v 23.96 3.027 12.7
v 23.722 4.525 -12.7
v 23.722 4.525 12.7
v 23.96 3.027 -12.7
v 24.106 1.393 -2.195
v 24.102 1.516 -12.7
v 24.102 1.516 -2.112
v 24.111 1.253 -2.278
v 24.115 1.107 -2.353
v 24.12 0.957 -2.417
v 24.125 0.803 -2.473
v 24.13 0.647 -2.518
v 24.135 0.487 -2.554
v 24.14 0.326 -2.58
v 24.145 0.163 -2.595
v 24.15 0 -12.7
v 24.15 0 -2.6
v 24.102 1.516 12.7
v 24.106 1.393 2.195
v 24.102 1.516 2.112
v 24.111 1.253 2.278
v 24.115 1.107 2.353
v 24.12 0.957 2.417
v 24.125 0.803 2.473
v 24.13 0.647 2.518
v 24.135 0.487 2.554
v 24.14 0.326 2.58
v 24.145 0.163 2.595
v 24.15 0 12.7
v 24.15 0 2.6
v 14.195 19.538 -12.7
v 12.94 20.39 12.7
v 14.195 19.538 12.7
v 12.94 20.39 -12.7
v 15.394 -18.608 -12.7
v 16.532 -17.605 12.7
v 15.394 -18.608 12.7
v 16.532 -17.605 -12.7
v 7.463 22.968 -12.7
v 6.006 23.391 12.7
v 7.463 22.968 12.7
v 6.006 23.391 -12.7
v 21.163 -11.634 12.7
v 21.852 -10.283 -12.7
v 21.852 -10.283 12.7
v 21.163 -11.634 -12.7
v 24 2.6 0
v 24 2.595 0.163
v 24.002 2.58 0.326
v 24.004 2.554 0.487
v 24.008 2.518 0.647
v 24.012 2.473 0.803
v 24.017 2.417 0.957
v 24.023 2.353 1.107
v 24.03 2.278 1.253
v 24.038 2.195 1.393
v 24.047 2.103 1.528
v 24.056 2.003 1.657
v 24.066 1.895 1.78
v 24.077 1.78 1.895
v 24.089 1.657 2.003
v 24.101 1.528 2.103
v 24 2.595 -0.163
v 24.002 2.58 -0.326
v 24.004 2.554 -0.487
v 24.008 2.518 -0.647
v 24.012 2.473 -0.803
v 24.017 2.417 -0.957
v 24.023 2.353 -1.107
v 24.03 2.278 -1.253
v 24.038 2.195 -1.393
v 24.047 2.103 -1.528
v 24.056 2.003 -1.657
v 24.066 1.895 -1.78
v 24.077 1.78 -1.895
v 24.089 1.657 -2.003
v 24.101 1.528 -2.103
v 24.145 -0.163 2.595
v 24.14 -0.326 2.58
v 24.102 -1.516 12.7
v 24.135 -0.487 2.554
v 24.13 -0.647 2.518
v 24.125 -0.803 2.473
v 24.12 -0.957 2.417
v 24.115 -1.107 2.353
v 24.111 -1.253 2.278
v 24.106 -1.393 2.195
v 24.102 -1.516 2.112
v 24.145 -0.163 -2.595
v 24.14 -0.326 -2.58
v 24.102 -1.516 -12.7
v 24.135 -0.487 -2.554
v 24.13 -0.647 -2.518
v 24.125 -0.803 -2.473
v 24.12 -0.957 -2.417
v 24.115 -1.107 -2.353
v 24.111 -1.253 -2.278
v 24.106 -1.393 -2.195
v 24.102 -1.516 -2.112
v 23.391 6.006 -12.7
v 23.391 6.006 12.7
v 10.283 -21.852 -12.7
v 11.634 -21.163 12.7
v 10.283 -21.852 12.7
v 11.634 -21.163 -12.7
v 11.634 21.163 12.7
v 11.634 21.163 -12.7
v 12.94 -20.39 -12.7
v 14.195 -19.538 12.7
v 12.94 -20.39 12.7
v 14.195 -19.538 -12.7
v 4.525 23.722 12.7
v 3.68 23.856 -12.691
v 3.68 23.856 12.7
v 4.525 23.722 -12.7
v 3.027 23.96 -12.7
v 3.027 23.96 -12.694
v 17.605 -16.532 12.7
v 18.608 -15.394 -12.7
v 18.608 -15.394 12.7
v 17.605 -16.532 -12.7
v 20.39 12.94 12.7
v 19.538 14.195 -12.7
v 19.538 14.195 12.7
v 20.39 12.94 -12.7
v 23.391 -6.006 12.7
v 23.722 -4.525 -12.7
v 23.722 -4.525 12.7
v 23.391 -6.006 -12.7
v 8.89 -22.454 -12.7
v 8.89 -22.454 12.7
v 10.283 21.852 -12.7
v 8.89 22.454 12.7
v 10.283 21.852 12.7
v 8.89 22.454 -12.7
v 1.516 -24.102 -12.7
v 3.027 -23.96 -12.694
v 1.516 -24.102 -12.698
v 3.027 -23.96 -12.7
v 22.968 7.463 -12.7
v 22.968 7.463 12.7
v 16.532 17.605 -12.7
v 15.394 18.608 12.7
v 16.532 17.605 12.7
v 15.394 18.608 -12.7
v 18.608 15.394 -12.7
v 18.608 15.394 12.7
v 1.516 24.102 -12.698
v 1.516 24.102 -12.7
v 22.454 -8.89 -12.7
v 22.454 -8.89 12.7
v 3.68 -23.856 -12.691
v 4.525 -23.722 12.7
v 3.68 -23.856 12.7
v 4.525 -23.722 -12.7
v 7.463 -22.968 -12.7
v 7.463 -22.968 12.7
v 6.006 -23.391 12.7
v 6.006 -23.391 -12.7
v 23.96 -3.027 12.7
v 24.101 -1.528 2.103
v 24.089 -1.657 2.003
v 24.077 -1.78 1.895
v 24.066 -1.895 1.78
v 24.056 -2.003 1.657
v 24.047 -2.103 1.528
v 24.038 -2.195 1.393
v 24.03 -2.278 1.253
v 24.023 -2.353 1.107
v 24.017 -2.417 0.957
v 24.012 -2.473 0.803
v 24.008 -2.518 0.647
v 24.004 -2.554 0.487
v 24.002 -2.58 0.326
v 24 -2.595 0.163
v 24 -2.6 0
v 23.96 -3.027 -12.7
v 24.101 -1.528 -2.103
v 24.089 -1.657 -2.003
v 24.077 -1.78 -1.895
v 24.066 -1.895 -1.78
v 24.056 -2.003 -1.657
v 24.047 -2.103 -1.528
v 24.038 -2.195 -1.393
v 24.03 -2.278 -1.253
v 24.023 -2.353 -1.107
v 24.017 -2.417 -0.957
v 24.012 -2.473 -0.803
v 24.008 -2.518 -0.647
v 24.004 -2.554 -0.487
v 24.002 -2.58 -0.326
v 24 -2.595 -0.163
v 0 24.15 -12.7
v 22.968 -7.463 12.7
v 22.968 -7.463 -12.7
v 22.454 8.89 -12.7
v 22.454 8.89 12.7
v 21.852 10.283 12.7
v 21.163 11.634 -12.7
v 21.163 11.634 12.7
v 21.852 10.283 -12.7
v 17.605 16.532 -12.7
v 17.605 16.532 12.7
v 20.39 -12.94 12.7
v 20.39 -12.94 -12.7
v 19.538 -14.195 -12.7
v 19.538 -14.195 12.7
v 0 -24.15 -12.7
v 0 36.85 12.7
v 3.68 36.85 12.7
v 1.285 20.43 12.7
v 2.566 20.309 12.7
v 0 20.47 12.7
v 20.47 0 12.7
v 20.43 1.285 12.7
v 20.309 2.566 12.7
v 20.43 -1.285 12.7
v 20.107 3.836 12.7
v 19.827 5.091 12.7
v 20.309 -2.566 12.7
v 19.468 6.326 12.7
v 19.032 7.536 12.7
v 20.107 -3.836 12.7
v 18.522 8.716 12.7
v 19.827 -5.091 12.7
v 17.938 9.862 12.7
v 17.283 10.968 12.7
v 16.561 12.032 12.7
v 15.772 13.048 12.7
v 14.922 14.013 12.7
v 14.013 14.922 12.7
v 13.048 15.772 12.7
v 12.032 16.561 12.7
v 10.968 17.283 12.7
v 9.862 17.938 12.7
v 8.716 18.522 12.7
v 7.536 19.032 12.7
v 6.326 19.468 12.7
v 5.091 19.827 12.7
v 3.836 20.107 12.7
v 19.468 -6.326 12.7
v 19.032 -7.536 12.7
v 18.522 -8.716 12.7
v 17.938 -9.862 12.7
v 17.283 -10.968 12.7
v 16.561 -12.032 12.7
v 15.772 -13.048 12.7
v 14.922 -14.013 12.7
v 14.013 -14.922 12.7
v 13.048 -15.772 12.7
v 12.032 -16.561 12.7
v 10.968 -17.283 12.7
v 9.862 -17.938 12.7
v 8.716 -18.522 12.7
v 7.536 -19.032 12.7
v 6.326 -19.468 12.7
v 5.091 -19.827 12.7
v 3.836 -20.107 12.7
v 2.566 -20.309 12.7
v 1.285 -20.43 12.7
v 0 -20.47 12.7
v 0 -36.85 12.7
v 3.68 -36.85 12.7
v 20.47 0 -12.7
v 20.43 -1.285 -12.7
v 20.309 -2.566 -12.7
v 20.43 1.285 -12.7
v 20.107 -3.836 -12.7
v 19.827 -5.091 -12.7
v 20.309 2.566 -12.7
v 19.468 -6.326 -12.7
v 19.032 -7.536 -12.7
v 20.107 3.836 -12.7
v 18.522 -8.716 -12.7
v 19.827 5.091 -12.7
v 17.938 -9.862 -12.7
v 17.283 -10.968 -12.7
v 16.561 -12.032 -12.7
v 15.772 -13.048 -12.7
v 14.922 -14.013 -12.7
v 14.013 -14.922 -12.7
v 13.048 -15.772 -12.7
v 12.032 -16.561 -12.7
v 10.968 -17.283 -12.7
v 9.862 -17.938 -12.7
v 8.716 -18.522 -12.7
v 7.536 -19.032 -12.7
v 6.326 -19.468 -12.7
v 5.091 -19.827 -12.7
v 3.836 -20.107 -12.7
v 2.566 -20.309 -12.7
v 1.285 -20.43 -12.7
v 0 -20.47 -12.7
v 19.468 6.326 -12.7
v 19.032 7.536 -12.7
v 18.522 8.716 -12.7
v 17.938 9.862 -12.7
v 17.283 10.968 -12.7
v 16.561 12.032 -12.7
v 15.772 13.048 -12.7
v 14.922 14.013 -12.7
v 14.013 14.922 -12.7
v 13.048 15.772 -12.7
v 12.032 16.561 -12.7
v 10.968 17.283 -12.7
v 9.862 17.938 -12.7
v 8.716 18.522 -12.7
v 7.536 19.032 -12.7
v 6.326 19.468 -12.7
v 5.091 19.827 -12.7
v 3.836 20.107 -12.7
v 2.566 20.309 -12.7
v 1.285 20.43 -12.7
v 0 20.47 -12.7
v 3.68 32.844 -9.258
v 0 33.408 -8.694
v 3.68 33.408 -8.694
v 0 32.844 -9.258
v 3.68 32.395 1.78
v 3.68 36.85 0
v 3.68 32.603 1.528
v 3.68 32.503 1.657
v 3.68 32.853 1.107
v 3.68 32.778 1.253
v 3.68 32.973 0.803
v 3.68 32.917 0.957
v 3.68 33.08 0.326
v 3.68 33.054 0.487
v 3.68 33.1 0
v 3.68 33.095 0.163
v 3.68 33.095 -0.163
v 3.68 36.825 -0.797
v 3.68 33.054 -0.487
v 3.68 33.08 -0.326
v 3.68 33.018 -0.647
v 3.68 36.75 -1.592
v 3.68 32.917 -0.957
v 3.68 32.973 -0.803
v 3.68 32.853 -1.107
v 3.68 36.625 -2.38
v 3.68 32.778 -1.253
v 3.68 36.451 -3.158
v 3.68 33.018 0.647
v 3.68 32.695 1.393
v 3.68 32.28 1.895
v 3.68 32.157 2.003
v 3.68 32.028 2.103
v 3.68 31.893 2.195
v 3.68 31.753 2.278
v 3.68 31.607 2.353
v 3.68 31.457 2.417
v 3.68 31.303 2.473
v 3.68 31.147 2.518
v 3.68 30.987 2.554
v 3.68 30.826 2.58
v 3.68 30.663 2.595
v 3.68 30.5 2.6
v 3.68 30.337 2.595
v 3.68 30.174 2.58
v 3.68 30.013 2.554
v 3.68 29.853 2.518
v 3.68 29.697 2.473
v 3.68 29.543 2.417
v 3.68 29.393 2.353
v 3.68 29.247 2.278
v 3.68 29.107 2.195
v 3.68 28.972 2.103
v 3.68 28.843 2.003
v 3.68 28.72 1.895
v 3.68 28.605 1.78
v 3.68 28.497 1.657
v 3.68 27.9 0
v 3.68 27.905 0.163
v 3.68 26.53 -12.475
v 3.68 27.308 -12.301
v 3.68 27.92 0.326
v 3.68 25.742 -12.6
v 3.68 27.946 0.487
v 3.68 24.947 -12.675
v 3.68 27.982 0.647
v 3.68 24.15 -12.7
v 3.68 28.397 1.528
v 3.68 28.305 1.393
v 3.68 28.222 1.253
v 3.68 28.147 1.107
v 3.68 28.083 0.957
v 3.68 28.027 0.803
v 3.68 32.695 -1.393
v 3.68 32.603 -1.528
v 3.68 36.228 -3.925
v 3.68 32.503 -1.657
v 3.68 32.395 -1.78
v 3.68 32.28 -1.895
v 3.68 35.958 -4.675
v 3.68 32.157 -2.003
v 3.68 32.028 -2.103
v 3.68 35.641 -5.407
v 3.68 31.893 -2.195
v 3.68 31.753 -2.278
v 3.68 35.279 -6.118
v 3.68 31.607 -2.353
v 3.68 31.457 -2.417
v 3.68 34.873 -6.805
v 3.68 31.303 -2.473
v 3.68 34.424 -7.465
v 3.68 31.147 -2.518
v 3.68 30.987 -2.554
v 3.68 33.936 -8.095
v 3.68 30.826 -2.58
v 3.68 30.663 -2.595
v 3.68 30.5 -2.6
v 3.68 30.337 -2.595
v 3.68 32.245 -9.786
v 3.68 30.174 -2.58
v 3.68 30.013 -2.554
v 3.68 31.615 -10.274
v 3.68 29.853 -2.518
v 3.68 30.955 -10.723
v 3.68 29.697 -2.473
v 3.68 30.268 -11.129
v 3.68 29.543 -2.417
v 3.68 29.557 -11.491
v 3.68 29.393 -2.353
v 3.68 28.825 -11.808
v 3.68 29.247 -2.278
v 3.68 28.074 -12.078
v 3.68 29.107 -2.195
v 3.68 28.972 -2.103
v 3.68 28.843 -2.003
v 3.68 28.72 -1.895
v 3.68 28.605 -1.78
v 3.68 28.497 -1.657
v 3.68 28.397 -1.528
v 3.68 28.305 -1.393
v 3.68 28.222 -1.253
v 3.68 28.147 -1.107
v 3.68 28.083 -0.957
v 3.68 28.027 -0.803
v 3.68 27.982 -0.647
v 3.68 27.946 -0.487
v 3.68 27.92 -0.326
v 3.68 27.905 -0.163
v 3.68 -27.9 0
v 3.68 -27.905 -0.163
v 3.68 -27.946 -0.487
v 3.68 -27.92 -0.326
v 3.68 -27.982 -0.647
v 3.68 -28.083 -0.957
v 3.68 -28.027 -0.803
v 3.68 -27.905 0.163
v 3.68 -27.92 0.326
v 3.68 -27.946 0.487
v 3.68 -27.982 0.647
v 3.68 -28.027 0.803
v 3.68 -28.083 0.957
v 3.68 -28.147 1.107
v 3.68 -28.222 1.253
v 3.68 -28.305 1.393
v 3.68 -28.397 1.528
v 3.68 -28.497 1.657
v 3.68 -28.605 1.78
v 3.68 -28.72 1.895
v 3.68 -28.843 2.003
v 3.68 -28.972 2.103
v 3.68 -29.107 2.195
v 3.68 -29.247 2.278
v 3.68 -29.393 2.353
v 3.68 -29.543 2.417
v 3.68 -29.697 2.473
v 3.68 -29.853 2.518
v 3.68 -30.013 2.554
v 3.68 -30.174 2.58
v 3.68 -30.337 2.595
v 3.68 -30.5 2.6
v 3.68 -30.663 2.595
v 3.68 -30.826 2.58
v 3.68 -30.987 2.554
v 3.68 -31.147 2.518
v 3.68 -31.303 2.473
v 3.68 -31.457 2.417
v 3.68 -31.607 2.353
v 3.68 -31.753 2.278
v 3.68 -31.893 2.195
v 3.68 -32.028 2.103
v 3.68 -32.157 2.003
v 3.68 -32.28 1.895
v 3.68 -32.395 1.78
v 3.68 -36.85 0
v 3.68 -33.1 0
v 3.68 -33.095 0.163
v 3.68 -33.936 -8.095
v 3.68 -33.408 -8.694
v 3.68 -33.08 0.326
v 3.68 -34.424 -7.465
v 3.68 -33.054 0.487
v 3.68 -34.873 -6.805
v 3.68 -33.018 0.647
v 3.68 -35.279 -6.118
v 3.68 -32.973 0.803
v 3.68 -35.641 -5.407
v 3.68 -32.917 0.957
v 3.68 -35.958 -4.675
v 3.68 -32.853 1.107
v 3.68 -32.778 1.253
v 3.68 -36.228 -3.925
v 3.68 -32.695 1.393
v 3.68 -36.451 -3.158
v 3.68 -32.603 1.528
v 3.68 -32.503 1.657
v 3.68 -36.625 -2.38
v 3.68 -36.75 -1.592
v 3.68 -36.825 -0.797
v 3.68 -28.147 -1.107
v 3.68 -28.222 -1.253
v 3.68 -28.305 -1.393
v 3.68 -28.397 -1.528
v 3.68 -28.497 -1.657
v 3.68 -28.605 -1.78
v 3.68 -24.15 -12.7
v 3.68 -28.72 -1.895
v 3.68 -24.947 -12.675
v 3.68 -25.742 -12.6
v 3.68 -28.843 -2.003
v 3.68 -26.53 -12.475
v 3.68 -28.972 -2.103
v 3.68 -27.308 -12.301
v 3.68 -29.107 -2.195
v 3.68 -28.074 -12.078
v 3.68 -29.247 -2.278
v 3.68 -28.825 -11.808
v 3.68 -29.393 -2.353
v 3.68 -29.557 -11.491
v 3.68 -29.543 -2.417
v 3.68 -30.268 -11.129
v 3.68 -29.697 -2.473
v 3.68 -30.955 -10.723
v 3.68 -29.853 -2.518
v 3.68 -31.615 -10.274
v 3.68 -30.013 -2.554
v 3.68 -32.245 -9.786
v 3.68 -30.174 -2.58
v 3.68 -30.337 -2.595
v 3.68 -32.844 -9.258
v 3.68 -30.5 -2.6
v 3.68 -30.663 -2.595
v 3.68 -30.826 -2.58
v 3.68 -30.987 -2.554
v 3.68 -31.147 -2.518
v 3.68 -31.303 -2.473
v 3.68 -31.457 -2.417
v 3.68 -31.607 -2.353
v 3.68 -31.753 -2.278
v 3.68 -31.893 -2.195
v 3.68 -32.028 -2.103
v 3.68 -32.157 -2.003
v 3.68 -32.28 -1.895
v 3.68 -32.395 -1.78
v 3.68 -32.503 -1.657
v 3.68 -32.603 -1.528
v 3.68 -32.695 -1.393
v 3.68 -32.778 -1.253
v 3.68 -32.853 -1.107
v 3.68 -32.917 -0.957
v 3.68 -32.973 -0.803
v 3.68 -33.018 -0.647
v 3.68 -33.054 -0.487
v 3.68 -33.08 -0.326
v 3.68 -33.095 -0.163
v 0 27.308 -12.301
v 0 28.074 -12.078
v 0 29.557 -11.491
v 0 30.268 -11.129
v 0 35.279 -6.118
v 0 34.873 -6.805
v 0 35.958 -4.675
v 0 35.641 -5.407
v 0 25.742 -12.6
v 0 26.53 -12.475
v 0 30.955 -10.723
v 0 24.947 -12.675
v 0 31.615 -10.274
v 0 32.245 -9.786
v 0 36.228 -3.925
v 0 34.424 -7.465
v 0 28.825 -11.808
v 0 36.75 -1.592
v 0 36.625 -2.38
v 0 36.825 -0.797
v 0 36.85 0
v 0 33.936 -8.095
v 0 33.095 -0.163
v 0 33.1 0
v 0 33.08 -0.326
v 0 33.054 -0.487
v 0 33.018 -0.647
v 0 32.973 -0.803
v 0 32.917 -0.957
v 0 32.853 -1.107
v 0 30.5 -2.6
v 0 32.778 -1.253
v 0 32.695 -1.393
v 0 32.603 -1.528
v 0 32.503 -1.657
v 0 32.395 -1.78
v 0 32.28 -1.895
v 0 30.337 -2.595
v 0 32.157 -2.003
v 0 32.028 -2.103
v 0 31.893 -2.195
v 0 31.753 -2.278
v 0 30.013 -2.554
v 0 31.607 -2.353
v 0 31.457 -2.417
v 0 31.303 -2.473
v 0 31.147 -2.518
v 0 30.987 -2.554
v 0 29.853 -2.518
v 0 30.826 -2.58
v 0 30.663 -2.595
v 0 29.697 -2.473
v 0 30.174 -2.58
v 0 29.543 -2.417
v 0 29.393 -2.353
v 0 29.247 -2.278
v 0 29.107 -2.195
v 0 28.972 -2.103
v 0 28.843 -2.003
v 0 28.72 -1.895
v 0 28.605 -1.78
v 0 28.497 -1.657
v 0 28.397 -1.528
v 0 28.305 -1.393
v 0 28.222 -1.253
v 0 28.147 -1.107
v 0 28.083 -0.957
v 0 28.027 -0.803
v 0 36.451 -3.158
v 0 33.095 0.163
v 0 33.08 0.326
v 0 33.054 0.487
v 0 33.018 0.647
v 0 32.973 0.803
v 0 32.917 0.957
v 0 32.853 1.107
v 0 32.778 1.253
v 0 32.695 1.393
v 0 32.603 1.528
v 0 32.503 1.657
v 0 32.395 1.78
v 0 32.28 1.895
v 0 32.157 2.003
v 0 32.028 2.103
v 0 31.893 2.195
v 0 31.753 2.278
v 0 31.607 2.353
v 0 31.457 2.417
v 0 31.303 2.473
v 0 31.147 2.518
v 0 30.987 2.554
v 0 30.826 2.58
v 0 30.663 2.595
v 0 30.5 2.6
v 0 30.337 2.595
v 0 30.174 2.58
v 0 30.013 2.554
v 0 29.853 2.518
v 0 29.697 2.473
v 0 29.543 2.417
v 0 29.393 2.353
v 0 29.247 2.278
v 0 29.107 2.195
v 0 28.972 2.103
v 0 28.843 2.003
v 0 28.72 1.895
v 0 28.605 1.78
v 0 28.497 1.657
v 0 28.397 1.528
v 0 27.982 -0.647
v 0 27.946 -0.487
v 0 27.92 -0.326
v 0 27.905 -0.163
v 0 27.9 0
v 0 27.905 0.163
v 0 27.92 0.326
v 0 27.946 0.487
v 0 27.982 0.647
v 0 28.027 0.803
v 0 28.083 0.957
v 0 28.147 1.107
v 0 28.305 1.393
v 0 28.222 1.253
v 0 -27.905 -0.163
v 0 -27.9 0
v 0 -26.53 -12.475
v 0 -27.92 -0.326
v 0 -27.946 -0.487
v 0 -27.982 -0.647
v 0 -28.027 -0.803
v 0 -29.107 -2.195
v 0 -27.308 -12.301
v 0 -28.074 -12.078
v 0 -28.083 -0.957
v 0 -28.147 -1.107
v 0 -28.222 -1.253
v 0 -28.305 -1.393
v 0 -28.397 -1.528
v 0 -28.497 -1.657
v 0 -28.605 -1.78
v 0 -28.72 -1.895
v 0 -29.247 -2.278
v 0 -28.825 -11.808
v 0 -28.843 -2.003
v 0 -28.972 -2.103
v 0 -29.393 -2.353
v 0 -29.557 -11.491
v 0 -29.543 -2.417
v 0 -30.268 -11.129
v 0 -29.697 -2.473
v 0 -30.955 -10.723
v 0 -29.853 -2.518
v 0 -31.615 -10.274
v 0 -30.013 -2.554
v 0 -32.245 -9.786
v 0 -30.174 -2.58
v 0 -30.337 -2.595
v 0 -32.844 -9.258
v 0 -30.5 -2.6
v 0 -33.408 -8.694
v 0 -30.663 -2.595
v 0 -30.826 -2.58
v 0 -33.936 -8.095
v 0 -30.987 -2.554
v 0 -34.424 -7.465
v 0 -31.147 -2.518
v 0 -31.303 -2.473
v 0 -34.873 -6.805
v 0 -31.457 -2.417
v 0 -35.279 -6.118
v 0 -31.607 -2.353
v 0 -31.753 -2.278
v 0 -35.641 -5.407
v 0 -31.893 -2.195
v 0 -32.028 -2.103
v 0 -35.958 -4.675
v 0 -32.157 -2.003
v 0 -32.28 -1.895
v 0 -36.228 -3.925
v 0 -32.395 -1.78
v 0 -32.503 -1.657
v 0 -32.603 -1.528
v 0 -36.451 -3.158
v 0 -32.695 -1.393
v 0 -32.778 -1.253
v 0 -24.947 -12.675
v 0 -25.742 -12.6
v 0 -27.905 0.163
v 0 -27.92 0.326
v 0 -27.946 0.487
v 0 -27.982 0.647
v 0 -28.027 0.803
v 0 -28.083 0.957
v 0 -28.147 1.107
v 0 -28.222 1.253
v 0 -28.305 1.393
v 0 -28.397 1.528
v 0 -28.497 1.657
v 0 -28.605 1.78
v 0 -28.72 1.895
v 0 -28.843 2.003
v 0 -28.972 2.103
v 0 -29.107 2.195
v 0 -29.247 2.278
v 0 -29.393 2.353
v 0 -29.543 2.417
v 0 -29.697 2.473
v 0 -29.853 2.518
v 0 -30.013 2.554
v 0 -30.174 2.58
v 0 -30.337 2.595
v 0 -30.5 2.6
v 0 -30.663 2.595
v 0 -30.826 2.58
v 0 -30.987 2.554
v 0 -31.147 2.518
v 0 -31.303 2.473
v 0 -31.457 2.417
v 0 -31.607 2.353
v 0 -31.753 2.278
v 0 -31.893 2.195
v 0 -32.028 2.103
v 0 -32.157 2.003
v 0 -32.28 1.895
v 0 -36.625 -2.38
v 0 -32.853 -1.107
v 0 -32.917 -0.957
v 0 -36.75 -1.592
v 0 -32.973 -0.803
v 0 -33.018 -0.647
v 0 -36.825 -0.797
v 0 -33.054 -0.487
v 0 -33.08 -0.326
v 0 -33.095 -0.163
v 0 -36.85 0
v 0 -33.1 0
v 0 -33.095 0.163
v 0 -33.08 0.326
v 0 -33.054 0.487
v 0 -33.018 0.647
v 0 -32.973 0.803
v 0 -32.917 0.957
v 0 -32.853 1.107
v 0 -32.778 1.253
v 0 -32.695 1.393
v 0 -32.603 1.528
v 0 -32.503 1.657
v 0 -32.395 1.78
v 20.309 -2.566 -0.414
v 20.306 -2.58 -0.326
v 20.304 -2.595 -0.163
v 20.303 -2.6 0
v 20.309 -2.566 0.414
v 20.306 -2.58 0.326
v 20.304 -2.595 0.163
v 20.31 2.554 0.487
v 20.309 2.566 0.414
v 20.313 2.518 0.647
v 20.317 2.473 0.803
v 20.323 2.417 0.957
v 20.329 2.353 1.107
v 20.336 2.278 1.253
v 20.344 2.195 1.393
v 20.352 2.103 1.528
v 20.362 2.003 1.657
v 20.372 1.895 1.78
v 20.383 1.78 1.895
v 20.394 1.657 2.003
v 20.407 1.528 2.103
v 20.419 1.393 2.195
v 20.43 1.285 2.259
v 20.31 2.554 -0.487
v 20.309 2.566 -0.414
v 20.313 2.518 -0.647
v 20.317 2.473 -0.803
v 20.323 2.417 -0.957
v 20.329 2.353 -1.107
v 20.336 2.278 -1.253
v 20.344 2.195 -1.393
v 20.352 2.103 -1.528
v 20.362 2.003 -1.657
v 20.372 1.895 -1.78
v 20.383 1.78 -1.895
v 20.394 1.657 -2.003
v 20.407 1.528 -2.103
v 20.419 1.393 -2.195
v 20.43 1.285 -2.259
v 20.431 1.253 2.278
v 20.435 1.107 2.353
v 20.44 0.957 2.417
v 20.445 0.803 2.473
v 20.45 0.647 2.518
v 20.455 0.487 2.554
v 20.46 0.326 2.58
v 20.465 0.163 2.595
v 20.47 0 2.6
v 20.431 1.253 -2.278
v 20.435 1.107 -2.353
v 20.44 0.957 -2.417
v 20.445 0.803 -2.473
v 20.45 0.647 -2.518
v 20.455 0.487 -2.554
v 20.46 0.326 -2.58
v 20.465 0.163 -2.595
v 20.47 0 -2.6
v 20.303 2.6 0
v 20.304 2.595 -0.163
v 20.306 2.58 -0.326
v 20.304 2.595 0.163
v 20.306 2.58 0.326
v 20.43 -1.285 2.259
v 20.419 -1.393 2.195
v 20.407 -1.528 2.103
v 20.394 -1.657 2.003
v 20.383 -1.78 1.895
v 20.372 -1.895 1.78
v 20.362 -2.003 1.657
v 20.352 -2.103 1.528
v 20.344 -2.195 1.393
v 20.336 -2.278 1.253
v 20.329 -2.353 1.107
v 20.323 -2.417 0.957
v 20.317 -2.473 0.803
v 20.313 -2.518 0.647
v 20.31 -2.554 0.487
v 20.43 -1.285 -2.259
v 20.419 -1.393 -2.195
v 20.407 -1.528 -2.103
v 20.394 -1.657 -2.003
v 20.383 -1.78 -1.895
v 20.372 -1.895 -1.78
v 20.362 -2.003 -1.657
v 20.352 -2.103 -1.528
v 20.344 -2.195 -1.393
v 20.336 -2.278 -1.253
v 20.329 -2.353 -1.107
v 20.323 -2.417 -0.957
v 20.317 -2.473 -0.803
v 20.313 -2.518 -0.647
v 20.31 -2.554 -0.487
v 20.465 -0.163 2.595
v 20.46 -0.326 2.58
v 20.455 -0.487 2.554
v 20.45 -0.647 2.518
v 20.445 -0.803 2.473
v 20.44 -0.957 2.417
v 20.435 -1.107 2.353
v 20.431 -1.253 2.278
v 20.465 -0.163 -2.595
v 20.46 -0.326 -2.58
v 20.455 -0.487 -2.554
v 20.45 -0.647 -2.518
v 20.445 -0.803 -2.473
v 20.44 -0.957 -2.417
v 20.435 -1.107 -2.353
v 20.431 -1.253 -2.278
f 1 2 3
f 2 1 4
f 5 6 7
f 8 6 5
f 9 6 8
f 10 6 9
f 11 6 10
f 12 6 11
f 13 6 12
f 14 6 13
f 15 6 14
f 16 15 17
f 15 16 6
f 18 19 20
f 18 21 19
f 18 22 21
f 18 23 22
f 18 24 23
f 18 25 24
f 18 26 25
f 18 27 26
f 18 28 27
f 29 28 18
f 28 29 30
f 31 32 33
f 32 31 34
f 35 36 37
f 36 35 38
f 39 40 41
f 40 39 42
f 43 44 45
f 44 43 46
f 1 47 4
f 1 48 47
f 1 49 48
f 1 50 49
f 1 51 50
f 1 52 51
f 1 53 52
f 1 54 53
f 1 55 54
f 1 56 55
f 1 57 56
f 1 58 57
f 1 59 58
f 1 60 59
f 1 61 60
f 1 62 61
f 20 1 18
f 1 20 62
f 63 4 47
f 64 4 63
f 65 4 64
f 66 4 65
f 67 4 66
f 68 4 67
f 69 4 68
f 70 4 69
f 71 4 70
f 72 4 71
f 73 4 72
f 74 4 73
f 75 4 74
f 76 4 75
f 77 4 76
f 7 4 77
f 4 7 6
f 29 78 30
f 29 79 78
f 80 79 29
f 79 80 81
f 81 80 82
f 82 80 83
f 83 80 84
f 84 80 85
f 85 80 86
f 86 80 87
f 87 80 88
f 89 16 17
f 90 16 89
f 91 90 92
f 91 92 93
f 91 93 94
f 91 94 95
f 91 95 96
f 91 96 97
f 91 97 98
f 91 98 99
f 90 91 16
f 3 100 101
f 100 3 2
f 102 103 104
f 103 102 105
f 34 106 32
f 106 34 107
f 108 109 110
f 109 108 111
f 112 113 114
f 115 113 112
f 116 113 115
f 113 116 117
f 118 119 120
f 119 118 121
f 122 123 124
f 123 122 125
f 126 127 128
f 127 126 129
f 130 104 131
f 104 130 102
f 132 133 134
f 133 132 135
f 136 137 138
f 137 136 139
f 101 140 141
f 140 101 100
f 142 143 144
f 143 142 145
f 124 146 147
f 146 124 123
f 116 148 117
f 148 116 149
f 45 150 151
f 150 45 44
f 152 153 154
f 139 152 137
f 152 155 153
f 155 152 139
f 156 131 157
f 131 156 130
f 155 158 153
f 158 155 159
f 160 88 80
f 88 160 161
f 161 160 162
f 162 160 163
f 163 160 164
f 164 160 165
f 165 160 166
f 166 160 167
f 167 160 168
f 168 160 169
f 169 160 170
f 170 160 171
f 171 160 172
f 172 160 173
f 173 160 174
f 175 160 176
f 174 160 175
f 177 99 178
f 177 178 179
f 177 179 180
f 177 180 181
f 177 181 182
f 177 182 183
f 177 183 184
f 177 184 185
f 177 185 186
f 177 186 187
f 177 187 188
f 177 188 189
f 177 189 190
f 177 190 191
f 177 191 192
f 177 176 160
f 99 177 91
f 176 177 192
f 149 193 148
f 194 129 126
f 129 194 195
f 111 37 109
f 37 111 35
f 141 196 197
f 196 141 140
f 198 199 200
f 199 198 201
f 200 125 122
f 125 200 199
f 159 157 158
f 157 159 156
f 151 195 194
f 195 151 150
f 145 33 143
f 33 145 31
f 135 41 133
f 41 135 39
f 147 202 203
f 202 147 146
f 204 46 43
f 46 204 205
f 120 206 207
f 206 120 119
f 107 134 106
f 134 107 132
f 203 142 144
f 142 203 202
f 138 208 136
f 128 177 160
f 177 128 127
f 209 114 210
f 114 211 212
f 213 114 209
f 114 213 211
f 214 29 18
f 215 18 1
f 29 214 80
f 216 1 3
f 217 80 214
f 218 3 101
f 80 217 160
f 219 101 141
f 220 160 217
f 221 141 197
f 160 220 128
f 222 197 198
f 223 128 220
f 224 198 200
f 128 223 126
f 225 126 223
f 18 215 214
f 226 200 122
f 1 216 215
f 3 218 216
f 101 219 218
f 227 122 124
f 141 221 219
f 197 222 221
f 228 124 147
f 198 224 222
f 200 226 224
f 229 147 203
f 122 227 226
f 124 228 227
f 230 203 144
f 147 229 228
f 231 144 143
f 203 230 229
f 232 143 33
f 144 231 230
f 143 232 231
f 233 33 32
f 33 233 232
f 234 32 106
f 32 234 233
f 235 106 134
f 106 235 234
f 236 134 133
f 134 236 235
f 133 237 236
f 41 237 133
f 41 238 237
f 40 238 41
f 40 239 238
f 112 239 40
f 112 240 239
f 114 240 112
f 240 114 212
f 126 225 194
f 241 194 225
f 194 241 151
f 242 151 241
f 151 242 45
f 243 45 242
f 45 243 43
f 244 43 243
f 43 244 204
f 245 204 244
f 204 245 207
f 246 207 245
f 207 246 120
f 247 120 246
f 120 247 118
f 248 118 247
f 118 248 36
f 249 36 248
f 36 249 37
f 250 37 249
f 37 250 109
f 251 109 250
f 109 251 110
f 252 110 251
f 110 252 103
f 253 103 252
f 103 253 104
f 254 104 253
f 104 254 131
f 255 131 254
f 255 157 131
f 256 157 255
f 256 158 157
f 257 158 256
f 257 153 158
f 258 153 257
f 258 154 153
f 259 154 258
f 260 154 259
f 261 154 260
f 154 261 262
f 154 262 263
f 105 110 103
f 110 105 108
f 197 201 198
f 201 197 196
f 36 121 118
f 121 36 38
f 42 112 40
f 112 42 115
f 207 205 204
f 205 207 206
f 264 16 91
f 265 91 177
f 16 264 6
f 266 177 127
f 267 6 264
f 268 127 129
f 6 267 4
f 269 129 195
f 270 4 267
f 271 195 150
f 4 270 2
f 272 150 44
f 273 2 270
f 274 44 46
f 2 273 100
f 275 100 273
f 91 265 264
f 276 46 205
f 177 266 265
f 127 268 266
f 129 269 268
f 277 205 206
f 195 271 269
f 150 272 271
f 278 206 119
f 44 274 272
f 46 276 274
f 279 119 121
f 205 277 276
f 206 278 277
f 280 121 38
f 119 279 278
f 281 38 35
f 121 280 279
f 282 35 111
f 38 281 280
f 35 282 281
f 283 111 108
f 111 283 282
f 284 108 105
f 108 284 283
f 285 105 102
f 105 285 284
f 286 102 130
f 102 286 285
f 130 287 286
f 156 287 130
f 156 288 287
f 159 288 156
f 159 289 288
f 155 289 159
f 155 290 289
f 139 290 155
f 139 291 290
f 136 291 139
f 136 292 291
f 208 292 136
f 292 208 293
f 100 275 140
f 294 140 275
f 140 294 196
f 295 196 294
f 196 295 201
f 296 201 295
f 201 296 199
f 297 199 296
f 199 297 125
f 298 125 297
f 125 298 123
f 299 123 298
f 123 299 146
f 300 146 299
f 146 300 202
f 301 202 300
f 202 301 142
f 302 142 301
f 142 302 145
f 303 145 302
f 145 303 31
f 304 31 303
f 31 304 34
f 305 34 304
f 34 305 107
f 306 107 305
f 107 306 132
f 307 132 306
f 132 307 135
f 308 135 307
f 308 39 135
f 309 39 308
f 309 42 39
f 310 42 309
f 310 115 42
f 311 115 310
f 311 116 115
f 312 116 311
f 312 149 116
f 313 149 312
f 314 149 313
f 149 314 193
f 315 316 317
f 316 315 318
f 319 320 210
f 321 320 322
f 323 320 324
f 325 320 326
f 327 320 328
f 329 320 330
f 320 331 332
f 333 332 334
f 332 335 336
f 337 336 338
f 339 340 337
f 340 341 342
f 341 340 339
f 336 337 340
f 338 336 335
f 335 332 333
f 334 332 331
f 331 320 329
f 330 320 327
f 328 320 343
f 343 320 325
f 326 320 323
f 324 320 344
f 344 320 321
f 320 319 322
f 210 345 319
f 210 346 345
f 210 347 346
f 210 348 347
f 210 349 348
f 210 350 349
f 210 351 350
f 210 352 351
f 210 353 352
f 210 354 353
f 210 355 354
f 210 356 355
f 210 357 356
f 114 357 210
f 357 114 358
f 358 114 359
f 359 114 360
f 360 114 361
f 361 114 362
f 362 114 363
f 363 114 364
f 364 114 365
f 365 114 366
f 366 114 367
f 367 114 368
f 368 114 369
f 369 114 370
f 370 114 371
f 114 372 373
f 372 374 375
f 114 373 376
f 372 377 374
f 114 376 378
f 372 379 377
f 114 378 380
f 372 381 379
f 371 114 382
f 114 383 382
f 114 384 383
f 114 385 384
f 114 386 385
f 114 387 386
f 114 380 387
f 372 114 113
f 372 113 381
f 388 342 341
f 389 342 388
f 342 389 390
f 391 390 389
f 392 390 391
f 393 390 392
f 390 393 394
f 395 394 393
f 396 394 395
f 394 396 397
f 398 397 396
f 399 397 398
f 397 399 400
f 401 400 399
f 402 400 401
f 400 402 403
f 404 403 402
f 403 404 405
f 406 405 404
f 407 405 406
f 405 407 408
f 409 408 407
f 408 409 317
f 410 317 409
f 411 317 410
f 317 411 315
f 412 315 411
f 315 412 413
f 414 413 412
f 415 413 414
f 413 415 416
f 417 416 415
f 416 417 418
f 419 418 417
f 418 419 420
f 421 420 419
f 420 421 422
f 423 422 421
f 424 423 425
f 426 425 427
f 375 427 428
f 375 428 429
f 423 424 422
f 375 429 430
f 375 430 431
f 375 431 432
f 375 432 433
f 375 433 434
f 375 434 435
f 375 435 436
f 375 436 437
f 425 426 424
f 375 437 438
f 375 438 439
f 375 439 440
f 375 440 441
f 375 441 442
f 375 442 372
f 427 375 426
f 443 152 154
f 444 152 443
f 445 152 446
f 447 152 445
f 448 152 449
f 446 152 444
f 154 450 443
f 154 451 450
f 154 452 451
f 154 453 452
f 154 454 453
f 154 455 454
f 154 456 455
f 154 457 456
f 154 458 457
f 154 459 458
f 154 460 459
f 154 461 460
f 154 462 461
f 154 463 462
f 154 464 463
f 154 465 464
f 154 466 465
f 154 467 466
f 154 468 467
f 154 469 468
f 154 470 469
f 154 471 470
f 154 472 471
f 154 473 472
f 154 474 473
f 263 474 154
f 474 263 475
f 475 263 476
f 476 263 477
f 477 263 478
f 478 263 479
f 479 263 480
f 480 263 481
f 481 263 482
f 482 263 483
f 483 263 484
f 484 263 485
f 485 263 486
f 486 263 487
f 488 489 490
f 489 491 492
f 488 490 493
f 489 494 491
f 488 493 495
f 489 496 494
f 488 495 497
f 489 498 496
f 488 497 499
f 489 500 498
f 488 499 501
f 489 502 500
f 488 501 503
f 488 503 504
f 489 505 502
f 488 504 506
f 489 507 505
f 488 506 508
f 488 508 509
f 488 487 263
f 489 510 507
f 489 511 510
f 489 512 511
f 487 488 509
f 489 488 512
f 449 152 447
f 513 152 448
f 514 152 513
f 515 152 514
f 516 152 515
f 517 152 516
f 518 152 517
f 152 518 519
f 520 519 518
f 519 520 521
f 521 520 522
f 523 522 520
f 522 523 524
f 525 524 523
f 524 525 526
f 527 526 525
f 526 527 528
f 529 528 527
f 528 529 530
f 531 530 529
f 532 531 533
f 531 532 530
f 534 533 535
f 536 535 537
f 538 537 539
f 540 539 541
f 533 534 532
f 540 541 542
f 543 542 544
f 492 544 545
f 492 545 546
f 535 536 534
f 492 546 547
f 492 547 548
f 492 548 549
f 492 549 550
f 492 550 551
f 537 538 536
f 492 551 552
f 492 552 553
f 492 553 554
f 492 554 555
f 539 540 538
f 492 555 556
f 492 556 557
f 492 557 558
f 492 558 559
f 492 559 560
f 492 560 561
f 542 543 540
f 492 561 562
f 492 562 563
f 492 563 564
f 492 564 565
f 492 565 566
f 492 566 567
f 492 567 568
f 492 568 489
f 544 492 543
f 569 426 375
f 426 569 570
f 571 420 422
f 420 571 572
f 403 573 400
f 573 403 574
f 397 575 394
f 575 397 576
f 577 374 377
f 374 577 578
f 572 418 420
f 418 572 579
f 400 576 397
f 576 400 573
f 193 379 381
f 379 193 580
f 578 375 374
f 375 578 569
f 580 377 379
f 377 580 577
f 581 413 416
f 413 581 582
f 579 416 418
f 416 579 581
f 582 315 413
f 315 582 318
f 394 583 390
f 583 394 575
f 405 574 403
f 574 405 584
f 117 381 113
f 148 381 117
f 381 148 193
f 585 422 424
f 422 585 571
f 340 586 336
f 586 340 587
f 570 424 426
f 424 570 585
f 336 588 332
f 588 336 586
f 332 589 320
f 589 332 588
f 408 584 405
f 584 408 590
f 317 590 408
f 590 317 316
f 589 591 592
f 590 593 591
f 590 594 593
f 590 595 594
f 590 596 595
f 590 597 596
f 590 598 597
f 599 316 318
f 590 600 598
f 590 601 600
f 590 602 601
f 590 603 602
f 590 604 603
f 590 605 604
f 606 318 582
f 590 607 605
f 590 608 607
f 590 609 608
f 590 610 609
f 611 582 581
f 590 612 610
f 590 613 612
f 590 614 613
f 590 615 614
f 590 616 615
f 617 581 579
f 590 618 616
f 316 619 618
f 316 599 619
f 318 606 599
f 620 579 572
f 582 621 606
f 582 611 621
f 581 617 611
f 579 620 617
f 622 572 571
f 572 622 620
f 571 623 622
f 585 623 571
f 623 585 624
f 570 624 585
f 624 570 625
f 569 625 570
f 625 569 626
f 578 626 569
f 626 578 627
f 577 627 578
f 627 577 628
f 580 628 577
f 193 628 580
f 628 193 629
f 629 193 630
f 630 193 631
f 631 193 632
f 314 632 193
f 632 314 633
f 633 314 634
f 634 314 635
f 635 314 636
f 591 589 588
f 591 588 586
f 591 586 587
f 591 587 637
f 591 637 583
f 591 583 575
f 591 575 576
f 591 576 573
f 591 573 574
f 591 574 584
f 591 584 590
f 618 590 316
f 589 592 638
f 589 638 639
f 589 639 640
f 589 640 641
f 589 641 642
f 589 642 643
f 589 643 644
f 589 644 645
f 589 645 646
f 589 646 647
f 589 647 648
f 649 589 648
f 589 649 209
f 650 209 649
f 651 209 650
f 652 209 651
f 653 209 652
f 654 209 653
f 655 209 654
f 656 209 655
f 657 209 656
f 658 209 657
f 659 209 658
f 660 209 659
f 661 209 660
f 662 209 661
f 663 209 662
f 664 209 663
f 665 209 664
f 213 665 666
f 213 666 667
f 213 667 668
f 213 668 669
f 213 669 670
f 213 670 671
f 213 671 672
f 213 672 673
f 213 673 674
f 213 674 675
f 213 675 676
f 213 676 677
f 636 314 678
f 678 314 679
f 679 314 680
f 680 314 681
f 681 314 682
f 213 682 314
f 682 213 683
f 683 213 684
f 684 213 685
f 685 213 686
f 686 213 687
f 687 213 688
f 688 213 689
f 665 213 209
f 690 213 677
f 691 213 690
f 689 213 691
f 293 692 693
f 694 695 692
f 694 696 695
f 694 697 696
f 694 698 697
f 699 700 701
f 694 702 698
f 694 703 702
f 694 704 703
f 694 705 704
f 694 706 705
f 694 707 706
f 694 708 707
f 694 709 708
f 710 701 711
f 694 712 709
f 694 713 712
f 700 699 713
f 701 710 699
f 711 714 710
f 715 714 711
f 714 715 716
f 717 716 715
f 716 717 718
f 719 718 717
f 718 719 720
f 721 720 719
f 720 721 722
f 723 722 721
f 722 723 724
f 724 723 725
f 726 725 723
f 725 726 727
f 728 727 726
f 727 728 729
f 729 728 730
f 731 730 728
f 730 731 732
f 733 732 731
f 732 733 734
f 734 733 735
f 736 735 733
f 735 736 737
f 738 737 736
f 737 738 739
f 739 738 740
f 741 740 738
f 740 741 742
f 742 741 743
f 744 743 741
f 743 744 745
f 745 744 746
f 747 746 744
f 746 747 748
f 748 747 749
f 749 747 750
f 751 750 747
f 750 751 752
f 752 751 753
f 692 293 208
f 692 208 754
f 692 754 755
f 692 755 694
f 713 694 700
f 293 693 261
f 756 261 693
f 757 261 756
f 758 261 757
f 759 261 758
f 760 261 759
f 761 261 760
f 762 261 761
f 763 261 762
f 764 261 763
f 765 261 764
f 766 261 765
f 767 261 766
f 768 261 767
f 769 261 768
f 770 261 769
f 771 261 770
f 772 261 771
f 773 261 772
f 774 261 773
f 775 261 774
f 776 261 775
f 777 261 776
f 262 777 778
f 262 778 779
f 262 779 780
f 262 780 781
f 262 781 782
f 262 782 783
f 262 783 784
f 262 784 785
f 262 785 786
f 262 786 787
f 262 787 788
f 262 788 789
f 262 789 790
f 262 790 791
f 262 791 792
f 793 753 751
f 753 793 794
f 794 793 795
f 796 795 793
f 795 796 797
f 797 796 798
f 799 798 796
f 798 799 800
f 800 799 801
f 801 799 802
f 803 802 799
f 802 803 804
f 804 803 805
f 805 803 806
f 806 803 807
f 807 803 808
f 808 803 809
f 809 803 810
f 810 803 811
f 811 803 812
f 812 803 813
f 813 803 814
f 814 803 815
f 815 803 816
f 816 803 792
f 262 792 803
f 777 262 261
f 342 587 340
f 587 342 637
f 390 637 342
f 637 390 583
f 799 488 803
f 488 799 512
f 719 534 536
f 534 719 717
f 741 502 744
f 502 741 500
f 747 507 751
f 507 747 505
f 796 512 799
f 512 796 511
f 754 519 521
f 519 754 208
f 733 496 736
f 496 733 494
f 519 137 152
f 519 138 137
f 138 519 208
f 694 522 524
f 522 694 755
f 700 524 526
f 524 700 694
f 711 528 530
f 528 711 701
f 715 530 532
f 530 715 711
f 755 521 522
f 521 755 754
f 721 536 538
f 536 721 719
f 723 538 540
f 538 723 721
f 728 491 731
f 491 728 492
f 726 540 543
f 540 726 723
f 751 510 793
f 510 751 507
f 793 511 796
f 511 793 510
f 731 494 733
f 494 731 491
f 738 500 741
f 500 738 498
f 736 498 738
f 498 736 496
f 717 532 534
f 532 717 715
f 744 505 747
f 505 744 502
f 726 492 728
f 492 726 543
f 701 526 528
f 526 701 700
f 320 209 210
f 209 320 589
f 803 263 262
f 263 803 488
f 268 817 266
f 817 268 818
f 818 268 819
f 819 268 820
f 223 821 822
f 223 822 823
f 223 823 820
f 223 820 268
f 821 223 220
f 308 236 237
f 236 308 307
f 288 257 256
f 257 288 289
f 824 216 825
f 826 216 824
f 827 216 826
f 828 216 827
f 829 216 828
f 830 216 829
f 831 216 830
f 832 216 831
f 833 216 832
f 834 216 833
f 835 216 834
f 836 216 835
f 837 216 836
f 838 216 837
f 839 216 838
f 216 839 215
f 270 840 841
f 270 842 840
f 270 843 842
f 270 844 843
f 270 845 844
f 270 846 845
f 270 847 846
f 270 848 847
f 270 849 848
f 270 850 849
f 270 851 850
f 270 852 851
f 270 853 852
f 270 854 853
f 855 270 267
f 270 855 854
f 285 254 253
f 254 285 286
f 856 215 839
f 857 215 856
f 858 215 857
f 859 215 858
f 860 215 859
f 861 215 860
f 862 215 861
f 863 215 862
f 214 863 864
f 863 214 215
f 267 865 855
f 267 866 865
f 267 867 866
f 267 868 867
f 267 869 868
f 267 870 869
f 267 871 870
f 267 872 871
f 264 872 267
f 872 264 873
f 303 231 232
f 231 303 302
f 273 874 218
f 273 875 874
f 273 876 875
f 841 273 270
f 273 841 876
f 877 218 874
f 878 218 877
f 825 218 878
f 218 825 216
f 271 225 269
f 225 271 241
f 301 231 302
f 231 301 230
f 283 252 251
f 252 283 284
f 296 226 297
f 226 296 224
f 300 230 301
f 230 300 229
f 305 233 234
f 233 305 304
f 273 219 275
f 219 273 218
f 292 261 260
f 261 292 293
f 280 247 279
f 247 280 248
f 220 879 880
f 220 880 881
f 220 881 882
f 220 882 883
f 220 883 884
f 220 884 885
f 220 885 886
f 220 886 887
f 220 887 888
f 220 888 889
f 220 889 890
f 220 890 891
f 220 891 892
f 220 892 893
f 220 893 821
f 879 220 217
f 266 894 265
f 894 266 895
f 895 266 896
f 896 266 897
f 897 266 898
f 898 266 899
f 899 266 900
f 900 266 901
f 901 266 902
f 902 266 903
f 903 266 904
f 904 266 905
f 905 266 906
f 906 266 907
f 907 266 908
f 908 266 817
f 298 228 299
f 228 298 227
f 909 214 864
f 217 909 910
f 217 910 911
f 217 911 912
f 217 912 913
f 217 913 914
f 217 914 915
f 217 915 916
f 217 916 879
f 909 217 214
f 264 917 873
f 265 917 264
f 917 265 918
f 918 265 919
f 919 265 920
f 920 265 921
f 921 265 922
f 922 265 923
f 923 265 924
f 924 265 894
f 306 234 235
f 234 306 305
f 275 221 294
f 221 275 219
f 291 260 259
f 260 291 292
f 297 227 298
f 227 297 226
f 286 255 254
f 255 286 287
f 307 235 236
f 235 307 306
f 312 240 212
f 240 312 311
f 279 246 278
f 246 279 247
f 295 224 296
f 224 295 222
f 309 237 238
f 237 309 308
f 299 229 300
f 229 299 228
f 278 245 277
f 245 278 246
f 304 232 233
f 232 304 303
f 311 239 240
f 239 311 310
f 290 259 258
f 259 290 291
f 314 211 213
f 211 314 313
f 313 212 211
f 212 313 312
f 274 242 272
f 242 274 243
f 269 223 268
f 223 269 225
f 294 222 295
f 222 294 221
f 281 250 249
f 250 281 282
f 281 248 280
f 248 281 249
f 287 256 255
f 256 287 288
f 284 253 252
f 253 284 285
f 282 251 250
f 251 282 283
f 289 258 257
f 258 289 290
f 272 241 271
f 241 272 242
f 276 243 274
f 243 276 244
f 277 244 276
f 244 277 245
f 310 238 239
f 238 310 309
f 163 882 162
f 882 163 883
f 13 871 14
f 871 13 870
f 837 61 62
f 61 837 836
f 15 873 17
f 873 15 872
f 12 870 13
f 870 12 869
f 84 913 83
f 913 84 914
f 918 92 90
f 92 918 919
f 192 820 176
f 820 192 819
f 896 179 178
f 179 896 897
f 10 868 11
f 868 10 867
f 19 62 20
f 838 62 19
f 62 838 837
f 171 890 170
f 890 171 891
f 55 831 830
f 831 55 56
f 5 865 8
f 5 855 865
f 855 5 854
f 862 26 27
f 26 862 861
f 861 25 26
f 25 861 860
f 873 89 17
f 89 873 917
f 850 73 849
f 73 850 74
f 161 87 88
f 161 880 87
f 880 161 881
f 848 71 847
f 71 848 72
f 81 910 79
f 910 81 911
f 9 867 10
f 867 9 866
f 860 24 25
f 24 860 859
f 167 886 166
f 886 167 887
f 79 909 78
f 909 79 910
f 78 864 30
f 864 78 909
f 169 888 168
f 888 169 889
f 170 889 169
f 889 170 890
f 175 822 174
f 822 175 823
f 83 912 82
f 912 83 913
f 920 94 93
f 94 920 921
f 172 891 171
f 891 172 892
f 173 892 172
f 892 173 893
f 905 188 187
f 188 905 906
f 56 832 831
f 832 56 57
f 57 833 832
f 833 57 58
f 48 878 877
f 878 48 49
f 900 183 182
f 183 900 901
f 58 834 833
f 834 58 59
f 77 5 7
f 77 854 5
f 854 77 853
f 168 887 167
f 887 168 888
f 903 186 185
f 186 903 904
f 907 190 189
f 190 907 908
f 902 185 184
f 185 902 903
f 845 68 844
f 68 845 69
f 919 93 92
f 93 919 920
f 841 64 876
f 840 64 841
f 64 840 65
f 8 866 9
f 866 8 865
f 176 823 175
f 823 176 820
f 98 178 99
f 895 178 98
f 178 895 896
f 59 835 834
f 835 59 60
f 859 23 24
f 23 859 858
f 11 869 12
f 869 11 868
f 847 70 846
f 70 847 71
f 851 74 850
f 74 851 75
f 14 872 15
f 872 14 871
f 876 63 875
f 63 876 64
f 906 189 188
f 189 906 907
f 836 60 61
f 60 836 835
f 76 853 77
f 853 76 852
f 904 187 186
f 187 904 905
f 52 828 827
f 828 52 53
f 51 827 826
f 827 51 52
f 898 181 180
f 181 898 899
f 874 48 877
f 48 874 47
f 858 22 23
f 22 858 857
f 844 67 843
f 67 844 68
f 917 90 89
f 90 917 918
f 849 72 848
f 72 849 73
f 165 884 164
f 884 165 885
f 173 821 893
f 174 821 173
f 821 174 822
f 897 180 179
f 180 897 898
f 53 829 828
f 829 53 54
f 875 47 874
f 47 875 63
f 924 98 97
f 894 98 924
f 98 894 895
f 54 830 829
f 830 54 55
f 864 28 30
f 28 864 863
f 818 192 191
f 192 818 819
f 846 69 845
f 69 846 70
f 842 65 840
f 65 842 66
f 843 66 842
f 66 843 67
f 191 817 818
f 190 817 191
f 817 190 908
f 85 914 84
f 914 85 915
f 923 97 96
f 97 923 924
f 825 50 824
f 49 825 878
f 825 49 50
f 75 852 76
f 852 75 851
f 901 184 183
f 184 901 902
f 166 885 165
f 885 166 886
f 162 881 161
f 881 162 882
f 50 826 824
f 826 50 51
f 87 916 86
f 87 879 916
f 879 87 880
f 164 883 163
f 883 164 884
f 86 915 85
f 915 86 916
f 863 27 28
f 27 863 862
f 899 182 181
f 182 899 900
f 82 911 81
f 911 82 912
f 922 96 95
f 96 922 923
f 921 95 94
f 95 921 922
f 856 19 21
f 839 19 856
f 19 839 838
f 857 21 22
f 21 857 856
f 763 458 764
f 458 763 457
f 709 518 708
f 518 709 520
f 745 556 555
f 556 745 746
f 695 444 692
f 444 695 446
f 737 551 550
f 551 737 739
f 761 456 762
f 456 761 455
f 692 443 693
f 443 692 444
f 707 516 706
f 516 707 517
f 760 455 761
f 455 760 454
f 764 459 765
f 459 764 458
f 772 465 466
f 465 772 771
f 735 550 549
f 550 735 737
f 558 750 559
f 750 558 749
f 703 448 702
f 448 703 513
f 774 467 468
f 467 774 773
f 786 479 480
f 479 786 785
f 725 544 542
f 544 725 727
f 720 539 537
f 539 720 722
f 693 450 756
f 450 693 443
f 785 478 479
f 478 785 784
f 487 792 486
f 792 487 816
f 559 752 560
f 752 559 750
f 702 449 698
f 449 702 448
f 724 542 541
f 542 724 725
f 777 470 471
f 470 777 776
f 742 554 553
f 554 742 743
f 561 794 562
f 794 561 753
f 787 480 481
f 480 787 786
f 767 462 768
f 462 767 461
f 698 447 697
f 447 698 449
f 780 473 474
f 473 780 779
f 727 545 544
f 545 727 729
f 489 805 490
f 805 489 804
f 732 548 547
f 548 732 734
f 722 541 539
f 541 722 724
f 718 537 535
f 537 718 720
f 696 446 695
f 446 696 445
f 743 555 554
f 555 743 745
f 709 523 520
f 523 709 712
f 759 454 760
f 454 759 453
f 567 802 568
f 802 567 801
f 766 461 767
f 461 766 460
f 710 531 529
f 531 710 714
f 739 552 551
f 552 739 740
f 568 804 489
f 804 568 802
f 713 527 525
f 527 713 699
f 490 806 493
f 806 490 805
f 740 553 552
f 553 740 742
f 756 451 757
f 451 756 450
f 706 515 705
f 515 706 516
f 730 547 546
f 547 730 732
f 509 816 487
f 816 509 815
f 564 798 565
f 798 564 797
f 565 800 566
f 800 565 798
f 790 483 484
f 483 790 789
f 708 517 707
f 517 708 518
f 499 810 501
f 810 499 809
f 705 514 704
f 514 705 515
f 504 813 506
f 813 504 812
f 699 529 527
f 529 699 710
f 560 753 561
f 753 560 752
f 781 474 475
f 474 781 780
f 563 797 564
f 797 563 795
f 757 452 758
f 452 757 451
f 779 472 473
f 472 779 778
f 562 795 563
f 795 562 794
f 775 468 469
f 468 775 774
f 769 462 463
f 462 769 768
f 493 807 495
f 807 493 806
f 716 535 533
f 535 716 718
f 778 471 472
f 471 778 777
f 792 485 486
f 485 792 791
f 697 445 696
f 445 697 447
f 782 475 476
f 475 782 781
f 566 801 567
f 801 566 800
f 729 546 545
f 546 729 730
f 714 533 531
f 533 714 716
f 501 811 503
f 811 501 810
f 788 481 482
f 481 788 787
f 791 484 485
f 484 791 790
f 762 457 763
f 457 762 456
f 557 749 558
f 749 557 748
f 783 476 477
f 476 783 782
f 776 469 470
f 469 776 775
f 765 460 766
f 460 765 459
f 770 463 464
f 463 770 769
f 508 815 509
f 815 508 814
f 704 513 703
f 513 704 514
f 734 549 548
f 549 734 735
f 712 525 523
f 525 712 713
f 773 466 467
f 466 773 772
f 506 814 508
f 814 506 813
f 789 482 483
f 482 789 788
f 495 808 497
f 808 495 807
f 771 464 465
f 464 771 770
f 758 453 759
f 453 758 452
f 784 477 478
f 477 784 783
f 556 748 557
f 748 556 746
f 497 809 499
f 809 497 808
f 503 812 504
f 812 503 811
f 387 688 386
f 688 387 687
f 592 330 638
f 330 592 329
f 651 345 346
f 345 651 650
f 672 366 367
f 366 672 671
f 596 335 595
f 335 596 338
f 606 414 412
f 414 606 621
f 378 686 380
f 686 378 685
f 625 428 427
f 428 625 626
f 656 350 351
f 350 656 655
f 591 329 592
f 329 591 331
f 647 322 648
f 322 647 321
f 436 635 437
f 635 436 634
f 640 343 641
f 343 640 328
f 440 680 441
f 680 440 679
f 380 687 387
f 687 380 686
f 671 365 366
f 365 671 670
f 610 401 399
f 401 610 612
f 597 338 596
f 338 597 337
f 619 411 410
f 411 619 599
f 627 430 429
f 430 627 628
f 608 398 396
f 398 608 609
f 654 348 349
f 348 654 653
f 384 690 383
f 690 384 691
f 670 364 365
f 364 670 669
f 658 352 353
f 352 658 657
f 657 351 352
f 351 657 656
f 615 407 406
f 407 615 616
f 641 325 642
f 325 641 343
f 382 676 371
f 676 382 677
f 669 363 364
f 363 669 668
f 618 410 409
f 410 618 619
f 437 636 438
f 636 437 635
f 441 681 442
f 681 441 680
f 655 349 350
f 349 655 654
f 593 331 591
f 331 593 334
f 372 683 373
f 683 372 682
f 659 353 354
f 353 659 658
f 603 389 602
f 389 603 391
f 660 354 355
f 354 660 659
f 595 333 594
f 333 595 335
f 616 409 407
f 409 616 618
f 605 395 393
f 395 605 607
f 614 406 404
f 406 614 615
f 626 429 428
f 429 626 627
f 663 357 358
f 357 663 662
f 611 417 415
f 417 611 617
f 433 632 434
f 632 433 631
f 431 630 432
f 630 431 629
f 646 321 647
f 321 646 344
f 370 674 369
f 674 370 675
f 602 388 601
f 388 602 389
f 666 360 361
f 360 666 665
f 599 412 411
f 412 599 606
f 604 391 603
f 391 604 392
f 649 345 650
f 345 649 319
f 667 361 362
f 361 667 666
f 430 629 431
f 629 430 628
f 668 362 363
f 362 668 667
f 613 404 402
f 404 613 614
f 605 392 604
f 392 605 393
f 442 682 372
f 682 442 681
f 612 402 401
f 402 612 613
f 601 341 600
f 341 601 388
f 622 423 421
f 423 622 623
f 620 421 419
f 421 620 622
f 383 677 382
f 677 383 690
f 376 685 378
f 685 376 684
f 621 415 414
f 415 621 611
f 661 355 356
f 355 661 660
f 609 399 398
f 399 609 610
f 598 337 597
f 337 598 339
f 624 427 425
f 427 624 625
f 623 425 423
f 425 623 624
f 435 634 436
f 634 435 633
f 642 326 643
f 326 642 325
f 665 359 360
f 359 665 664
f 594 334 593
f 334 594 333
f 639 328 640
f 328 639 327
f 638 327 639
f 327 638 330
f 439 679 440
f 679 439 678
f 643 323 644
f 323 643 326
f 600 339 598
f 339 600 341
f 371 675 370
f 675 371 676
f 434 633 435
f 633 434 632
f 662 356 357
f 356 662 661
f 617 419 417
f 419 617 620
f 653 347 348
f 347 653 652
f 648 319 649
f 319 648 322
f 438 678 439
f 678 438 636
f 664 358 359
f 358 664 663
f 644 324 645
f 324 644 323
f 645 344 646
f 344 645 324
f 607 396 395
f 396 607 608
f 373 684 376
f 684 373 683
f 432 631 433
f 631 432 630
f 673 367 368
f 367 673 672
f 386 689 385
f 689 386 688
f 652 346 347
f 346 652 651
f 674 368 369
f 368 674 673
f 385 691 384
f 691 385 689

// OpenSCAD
pvc_od = 48.3;
pvc_wall = 3.68;
pvc_id = pvc_od - (2 * pvc_wall);
h = 25.4;
screw_d = 5.2; //5.159375

$fn=100;

difference() {
  union() {
    // pipe
    cylinder(h=h, r=pvc_od/2, center=true);
    
    // ears
    translate([0,pvc_od/2,0]) {
      rotate([0,90,0]) {
        cylinder(h=pvc_wall, r=h/2);
      }
    }
    
    translate([0,-pvc_od/2,0]) {
      rotate([0,90,0]) {
        cylinder(h=pvc_wall, r=h/2);
      }
    }
    
    translate([0,-(pvc_od+h)/2,0]) {
      cube([pvc_wall, pvc_od+h, h/2]);
    }
  }
  
  // inner pipe
  cylinder(h=h+1, r=pvc_id/2, center=true);
  
  // screw jig
  rotate([0,90,0]) {
    translate([0,0,0], center=true) {
      cylinder(h=50, r=screw_d/2);
    }
  }
  
  // cut in half
  translate([-50,-100,-25], center=true) {
    cube([50, 200, 50]);
  }
  
  // ear holes
  rotate([0,90,0]) {
    translate([0,-(pvc_od/2)-(h/4),0], center=true) {
      cylinder(h=50, r=screw_d/2);
    }
  }


  rotate([0,90,0]) {
    translate([0,(pvc_od/2)+(h/4),0], center=true) {
      cylinder(h=50, r=screw_d/2);
    }
  }
}
